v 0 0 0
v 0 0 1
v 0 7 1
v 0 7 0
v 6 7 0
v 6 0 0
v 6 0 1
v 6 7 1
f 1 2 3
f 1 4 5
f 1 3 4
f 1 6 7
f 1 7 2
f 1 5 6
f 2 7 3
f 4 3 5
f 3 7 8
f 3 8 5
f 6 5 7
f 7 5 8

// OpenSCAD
/* Warning, this is a very basic generator with a lot of approximation 
input data : [VQFN, 8YW, 6x7x1mm, 39, , A, C04-00677A]
generated by com.zoubworld.electronics.cad.model3d.Basic
Date : Sun Feb 15 10:50:49 CET 2026
*/

//body
color("black")
translate([0,0,0])
cube([6.0,7.0,1.0], center=false);
